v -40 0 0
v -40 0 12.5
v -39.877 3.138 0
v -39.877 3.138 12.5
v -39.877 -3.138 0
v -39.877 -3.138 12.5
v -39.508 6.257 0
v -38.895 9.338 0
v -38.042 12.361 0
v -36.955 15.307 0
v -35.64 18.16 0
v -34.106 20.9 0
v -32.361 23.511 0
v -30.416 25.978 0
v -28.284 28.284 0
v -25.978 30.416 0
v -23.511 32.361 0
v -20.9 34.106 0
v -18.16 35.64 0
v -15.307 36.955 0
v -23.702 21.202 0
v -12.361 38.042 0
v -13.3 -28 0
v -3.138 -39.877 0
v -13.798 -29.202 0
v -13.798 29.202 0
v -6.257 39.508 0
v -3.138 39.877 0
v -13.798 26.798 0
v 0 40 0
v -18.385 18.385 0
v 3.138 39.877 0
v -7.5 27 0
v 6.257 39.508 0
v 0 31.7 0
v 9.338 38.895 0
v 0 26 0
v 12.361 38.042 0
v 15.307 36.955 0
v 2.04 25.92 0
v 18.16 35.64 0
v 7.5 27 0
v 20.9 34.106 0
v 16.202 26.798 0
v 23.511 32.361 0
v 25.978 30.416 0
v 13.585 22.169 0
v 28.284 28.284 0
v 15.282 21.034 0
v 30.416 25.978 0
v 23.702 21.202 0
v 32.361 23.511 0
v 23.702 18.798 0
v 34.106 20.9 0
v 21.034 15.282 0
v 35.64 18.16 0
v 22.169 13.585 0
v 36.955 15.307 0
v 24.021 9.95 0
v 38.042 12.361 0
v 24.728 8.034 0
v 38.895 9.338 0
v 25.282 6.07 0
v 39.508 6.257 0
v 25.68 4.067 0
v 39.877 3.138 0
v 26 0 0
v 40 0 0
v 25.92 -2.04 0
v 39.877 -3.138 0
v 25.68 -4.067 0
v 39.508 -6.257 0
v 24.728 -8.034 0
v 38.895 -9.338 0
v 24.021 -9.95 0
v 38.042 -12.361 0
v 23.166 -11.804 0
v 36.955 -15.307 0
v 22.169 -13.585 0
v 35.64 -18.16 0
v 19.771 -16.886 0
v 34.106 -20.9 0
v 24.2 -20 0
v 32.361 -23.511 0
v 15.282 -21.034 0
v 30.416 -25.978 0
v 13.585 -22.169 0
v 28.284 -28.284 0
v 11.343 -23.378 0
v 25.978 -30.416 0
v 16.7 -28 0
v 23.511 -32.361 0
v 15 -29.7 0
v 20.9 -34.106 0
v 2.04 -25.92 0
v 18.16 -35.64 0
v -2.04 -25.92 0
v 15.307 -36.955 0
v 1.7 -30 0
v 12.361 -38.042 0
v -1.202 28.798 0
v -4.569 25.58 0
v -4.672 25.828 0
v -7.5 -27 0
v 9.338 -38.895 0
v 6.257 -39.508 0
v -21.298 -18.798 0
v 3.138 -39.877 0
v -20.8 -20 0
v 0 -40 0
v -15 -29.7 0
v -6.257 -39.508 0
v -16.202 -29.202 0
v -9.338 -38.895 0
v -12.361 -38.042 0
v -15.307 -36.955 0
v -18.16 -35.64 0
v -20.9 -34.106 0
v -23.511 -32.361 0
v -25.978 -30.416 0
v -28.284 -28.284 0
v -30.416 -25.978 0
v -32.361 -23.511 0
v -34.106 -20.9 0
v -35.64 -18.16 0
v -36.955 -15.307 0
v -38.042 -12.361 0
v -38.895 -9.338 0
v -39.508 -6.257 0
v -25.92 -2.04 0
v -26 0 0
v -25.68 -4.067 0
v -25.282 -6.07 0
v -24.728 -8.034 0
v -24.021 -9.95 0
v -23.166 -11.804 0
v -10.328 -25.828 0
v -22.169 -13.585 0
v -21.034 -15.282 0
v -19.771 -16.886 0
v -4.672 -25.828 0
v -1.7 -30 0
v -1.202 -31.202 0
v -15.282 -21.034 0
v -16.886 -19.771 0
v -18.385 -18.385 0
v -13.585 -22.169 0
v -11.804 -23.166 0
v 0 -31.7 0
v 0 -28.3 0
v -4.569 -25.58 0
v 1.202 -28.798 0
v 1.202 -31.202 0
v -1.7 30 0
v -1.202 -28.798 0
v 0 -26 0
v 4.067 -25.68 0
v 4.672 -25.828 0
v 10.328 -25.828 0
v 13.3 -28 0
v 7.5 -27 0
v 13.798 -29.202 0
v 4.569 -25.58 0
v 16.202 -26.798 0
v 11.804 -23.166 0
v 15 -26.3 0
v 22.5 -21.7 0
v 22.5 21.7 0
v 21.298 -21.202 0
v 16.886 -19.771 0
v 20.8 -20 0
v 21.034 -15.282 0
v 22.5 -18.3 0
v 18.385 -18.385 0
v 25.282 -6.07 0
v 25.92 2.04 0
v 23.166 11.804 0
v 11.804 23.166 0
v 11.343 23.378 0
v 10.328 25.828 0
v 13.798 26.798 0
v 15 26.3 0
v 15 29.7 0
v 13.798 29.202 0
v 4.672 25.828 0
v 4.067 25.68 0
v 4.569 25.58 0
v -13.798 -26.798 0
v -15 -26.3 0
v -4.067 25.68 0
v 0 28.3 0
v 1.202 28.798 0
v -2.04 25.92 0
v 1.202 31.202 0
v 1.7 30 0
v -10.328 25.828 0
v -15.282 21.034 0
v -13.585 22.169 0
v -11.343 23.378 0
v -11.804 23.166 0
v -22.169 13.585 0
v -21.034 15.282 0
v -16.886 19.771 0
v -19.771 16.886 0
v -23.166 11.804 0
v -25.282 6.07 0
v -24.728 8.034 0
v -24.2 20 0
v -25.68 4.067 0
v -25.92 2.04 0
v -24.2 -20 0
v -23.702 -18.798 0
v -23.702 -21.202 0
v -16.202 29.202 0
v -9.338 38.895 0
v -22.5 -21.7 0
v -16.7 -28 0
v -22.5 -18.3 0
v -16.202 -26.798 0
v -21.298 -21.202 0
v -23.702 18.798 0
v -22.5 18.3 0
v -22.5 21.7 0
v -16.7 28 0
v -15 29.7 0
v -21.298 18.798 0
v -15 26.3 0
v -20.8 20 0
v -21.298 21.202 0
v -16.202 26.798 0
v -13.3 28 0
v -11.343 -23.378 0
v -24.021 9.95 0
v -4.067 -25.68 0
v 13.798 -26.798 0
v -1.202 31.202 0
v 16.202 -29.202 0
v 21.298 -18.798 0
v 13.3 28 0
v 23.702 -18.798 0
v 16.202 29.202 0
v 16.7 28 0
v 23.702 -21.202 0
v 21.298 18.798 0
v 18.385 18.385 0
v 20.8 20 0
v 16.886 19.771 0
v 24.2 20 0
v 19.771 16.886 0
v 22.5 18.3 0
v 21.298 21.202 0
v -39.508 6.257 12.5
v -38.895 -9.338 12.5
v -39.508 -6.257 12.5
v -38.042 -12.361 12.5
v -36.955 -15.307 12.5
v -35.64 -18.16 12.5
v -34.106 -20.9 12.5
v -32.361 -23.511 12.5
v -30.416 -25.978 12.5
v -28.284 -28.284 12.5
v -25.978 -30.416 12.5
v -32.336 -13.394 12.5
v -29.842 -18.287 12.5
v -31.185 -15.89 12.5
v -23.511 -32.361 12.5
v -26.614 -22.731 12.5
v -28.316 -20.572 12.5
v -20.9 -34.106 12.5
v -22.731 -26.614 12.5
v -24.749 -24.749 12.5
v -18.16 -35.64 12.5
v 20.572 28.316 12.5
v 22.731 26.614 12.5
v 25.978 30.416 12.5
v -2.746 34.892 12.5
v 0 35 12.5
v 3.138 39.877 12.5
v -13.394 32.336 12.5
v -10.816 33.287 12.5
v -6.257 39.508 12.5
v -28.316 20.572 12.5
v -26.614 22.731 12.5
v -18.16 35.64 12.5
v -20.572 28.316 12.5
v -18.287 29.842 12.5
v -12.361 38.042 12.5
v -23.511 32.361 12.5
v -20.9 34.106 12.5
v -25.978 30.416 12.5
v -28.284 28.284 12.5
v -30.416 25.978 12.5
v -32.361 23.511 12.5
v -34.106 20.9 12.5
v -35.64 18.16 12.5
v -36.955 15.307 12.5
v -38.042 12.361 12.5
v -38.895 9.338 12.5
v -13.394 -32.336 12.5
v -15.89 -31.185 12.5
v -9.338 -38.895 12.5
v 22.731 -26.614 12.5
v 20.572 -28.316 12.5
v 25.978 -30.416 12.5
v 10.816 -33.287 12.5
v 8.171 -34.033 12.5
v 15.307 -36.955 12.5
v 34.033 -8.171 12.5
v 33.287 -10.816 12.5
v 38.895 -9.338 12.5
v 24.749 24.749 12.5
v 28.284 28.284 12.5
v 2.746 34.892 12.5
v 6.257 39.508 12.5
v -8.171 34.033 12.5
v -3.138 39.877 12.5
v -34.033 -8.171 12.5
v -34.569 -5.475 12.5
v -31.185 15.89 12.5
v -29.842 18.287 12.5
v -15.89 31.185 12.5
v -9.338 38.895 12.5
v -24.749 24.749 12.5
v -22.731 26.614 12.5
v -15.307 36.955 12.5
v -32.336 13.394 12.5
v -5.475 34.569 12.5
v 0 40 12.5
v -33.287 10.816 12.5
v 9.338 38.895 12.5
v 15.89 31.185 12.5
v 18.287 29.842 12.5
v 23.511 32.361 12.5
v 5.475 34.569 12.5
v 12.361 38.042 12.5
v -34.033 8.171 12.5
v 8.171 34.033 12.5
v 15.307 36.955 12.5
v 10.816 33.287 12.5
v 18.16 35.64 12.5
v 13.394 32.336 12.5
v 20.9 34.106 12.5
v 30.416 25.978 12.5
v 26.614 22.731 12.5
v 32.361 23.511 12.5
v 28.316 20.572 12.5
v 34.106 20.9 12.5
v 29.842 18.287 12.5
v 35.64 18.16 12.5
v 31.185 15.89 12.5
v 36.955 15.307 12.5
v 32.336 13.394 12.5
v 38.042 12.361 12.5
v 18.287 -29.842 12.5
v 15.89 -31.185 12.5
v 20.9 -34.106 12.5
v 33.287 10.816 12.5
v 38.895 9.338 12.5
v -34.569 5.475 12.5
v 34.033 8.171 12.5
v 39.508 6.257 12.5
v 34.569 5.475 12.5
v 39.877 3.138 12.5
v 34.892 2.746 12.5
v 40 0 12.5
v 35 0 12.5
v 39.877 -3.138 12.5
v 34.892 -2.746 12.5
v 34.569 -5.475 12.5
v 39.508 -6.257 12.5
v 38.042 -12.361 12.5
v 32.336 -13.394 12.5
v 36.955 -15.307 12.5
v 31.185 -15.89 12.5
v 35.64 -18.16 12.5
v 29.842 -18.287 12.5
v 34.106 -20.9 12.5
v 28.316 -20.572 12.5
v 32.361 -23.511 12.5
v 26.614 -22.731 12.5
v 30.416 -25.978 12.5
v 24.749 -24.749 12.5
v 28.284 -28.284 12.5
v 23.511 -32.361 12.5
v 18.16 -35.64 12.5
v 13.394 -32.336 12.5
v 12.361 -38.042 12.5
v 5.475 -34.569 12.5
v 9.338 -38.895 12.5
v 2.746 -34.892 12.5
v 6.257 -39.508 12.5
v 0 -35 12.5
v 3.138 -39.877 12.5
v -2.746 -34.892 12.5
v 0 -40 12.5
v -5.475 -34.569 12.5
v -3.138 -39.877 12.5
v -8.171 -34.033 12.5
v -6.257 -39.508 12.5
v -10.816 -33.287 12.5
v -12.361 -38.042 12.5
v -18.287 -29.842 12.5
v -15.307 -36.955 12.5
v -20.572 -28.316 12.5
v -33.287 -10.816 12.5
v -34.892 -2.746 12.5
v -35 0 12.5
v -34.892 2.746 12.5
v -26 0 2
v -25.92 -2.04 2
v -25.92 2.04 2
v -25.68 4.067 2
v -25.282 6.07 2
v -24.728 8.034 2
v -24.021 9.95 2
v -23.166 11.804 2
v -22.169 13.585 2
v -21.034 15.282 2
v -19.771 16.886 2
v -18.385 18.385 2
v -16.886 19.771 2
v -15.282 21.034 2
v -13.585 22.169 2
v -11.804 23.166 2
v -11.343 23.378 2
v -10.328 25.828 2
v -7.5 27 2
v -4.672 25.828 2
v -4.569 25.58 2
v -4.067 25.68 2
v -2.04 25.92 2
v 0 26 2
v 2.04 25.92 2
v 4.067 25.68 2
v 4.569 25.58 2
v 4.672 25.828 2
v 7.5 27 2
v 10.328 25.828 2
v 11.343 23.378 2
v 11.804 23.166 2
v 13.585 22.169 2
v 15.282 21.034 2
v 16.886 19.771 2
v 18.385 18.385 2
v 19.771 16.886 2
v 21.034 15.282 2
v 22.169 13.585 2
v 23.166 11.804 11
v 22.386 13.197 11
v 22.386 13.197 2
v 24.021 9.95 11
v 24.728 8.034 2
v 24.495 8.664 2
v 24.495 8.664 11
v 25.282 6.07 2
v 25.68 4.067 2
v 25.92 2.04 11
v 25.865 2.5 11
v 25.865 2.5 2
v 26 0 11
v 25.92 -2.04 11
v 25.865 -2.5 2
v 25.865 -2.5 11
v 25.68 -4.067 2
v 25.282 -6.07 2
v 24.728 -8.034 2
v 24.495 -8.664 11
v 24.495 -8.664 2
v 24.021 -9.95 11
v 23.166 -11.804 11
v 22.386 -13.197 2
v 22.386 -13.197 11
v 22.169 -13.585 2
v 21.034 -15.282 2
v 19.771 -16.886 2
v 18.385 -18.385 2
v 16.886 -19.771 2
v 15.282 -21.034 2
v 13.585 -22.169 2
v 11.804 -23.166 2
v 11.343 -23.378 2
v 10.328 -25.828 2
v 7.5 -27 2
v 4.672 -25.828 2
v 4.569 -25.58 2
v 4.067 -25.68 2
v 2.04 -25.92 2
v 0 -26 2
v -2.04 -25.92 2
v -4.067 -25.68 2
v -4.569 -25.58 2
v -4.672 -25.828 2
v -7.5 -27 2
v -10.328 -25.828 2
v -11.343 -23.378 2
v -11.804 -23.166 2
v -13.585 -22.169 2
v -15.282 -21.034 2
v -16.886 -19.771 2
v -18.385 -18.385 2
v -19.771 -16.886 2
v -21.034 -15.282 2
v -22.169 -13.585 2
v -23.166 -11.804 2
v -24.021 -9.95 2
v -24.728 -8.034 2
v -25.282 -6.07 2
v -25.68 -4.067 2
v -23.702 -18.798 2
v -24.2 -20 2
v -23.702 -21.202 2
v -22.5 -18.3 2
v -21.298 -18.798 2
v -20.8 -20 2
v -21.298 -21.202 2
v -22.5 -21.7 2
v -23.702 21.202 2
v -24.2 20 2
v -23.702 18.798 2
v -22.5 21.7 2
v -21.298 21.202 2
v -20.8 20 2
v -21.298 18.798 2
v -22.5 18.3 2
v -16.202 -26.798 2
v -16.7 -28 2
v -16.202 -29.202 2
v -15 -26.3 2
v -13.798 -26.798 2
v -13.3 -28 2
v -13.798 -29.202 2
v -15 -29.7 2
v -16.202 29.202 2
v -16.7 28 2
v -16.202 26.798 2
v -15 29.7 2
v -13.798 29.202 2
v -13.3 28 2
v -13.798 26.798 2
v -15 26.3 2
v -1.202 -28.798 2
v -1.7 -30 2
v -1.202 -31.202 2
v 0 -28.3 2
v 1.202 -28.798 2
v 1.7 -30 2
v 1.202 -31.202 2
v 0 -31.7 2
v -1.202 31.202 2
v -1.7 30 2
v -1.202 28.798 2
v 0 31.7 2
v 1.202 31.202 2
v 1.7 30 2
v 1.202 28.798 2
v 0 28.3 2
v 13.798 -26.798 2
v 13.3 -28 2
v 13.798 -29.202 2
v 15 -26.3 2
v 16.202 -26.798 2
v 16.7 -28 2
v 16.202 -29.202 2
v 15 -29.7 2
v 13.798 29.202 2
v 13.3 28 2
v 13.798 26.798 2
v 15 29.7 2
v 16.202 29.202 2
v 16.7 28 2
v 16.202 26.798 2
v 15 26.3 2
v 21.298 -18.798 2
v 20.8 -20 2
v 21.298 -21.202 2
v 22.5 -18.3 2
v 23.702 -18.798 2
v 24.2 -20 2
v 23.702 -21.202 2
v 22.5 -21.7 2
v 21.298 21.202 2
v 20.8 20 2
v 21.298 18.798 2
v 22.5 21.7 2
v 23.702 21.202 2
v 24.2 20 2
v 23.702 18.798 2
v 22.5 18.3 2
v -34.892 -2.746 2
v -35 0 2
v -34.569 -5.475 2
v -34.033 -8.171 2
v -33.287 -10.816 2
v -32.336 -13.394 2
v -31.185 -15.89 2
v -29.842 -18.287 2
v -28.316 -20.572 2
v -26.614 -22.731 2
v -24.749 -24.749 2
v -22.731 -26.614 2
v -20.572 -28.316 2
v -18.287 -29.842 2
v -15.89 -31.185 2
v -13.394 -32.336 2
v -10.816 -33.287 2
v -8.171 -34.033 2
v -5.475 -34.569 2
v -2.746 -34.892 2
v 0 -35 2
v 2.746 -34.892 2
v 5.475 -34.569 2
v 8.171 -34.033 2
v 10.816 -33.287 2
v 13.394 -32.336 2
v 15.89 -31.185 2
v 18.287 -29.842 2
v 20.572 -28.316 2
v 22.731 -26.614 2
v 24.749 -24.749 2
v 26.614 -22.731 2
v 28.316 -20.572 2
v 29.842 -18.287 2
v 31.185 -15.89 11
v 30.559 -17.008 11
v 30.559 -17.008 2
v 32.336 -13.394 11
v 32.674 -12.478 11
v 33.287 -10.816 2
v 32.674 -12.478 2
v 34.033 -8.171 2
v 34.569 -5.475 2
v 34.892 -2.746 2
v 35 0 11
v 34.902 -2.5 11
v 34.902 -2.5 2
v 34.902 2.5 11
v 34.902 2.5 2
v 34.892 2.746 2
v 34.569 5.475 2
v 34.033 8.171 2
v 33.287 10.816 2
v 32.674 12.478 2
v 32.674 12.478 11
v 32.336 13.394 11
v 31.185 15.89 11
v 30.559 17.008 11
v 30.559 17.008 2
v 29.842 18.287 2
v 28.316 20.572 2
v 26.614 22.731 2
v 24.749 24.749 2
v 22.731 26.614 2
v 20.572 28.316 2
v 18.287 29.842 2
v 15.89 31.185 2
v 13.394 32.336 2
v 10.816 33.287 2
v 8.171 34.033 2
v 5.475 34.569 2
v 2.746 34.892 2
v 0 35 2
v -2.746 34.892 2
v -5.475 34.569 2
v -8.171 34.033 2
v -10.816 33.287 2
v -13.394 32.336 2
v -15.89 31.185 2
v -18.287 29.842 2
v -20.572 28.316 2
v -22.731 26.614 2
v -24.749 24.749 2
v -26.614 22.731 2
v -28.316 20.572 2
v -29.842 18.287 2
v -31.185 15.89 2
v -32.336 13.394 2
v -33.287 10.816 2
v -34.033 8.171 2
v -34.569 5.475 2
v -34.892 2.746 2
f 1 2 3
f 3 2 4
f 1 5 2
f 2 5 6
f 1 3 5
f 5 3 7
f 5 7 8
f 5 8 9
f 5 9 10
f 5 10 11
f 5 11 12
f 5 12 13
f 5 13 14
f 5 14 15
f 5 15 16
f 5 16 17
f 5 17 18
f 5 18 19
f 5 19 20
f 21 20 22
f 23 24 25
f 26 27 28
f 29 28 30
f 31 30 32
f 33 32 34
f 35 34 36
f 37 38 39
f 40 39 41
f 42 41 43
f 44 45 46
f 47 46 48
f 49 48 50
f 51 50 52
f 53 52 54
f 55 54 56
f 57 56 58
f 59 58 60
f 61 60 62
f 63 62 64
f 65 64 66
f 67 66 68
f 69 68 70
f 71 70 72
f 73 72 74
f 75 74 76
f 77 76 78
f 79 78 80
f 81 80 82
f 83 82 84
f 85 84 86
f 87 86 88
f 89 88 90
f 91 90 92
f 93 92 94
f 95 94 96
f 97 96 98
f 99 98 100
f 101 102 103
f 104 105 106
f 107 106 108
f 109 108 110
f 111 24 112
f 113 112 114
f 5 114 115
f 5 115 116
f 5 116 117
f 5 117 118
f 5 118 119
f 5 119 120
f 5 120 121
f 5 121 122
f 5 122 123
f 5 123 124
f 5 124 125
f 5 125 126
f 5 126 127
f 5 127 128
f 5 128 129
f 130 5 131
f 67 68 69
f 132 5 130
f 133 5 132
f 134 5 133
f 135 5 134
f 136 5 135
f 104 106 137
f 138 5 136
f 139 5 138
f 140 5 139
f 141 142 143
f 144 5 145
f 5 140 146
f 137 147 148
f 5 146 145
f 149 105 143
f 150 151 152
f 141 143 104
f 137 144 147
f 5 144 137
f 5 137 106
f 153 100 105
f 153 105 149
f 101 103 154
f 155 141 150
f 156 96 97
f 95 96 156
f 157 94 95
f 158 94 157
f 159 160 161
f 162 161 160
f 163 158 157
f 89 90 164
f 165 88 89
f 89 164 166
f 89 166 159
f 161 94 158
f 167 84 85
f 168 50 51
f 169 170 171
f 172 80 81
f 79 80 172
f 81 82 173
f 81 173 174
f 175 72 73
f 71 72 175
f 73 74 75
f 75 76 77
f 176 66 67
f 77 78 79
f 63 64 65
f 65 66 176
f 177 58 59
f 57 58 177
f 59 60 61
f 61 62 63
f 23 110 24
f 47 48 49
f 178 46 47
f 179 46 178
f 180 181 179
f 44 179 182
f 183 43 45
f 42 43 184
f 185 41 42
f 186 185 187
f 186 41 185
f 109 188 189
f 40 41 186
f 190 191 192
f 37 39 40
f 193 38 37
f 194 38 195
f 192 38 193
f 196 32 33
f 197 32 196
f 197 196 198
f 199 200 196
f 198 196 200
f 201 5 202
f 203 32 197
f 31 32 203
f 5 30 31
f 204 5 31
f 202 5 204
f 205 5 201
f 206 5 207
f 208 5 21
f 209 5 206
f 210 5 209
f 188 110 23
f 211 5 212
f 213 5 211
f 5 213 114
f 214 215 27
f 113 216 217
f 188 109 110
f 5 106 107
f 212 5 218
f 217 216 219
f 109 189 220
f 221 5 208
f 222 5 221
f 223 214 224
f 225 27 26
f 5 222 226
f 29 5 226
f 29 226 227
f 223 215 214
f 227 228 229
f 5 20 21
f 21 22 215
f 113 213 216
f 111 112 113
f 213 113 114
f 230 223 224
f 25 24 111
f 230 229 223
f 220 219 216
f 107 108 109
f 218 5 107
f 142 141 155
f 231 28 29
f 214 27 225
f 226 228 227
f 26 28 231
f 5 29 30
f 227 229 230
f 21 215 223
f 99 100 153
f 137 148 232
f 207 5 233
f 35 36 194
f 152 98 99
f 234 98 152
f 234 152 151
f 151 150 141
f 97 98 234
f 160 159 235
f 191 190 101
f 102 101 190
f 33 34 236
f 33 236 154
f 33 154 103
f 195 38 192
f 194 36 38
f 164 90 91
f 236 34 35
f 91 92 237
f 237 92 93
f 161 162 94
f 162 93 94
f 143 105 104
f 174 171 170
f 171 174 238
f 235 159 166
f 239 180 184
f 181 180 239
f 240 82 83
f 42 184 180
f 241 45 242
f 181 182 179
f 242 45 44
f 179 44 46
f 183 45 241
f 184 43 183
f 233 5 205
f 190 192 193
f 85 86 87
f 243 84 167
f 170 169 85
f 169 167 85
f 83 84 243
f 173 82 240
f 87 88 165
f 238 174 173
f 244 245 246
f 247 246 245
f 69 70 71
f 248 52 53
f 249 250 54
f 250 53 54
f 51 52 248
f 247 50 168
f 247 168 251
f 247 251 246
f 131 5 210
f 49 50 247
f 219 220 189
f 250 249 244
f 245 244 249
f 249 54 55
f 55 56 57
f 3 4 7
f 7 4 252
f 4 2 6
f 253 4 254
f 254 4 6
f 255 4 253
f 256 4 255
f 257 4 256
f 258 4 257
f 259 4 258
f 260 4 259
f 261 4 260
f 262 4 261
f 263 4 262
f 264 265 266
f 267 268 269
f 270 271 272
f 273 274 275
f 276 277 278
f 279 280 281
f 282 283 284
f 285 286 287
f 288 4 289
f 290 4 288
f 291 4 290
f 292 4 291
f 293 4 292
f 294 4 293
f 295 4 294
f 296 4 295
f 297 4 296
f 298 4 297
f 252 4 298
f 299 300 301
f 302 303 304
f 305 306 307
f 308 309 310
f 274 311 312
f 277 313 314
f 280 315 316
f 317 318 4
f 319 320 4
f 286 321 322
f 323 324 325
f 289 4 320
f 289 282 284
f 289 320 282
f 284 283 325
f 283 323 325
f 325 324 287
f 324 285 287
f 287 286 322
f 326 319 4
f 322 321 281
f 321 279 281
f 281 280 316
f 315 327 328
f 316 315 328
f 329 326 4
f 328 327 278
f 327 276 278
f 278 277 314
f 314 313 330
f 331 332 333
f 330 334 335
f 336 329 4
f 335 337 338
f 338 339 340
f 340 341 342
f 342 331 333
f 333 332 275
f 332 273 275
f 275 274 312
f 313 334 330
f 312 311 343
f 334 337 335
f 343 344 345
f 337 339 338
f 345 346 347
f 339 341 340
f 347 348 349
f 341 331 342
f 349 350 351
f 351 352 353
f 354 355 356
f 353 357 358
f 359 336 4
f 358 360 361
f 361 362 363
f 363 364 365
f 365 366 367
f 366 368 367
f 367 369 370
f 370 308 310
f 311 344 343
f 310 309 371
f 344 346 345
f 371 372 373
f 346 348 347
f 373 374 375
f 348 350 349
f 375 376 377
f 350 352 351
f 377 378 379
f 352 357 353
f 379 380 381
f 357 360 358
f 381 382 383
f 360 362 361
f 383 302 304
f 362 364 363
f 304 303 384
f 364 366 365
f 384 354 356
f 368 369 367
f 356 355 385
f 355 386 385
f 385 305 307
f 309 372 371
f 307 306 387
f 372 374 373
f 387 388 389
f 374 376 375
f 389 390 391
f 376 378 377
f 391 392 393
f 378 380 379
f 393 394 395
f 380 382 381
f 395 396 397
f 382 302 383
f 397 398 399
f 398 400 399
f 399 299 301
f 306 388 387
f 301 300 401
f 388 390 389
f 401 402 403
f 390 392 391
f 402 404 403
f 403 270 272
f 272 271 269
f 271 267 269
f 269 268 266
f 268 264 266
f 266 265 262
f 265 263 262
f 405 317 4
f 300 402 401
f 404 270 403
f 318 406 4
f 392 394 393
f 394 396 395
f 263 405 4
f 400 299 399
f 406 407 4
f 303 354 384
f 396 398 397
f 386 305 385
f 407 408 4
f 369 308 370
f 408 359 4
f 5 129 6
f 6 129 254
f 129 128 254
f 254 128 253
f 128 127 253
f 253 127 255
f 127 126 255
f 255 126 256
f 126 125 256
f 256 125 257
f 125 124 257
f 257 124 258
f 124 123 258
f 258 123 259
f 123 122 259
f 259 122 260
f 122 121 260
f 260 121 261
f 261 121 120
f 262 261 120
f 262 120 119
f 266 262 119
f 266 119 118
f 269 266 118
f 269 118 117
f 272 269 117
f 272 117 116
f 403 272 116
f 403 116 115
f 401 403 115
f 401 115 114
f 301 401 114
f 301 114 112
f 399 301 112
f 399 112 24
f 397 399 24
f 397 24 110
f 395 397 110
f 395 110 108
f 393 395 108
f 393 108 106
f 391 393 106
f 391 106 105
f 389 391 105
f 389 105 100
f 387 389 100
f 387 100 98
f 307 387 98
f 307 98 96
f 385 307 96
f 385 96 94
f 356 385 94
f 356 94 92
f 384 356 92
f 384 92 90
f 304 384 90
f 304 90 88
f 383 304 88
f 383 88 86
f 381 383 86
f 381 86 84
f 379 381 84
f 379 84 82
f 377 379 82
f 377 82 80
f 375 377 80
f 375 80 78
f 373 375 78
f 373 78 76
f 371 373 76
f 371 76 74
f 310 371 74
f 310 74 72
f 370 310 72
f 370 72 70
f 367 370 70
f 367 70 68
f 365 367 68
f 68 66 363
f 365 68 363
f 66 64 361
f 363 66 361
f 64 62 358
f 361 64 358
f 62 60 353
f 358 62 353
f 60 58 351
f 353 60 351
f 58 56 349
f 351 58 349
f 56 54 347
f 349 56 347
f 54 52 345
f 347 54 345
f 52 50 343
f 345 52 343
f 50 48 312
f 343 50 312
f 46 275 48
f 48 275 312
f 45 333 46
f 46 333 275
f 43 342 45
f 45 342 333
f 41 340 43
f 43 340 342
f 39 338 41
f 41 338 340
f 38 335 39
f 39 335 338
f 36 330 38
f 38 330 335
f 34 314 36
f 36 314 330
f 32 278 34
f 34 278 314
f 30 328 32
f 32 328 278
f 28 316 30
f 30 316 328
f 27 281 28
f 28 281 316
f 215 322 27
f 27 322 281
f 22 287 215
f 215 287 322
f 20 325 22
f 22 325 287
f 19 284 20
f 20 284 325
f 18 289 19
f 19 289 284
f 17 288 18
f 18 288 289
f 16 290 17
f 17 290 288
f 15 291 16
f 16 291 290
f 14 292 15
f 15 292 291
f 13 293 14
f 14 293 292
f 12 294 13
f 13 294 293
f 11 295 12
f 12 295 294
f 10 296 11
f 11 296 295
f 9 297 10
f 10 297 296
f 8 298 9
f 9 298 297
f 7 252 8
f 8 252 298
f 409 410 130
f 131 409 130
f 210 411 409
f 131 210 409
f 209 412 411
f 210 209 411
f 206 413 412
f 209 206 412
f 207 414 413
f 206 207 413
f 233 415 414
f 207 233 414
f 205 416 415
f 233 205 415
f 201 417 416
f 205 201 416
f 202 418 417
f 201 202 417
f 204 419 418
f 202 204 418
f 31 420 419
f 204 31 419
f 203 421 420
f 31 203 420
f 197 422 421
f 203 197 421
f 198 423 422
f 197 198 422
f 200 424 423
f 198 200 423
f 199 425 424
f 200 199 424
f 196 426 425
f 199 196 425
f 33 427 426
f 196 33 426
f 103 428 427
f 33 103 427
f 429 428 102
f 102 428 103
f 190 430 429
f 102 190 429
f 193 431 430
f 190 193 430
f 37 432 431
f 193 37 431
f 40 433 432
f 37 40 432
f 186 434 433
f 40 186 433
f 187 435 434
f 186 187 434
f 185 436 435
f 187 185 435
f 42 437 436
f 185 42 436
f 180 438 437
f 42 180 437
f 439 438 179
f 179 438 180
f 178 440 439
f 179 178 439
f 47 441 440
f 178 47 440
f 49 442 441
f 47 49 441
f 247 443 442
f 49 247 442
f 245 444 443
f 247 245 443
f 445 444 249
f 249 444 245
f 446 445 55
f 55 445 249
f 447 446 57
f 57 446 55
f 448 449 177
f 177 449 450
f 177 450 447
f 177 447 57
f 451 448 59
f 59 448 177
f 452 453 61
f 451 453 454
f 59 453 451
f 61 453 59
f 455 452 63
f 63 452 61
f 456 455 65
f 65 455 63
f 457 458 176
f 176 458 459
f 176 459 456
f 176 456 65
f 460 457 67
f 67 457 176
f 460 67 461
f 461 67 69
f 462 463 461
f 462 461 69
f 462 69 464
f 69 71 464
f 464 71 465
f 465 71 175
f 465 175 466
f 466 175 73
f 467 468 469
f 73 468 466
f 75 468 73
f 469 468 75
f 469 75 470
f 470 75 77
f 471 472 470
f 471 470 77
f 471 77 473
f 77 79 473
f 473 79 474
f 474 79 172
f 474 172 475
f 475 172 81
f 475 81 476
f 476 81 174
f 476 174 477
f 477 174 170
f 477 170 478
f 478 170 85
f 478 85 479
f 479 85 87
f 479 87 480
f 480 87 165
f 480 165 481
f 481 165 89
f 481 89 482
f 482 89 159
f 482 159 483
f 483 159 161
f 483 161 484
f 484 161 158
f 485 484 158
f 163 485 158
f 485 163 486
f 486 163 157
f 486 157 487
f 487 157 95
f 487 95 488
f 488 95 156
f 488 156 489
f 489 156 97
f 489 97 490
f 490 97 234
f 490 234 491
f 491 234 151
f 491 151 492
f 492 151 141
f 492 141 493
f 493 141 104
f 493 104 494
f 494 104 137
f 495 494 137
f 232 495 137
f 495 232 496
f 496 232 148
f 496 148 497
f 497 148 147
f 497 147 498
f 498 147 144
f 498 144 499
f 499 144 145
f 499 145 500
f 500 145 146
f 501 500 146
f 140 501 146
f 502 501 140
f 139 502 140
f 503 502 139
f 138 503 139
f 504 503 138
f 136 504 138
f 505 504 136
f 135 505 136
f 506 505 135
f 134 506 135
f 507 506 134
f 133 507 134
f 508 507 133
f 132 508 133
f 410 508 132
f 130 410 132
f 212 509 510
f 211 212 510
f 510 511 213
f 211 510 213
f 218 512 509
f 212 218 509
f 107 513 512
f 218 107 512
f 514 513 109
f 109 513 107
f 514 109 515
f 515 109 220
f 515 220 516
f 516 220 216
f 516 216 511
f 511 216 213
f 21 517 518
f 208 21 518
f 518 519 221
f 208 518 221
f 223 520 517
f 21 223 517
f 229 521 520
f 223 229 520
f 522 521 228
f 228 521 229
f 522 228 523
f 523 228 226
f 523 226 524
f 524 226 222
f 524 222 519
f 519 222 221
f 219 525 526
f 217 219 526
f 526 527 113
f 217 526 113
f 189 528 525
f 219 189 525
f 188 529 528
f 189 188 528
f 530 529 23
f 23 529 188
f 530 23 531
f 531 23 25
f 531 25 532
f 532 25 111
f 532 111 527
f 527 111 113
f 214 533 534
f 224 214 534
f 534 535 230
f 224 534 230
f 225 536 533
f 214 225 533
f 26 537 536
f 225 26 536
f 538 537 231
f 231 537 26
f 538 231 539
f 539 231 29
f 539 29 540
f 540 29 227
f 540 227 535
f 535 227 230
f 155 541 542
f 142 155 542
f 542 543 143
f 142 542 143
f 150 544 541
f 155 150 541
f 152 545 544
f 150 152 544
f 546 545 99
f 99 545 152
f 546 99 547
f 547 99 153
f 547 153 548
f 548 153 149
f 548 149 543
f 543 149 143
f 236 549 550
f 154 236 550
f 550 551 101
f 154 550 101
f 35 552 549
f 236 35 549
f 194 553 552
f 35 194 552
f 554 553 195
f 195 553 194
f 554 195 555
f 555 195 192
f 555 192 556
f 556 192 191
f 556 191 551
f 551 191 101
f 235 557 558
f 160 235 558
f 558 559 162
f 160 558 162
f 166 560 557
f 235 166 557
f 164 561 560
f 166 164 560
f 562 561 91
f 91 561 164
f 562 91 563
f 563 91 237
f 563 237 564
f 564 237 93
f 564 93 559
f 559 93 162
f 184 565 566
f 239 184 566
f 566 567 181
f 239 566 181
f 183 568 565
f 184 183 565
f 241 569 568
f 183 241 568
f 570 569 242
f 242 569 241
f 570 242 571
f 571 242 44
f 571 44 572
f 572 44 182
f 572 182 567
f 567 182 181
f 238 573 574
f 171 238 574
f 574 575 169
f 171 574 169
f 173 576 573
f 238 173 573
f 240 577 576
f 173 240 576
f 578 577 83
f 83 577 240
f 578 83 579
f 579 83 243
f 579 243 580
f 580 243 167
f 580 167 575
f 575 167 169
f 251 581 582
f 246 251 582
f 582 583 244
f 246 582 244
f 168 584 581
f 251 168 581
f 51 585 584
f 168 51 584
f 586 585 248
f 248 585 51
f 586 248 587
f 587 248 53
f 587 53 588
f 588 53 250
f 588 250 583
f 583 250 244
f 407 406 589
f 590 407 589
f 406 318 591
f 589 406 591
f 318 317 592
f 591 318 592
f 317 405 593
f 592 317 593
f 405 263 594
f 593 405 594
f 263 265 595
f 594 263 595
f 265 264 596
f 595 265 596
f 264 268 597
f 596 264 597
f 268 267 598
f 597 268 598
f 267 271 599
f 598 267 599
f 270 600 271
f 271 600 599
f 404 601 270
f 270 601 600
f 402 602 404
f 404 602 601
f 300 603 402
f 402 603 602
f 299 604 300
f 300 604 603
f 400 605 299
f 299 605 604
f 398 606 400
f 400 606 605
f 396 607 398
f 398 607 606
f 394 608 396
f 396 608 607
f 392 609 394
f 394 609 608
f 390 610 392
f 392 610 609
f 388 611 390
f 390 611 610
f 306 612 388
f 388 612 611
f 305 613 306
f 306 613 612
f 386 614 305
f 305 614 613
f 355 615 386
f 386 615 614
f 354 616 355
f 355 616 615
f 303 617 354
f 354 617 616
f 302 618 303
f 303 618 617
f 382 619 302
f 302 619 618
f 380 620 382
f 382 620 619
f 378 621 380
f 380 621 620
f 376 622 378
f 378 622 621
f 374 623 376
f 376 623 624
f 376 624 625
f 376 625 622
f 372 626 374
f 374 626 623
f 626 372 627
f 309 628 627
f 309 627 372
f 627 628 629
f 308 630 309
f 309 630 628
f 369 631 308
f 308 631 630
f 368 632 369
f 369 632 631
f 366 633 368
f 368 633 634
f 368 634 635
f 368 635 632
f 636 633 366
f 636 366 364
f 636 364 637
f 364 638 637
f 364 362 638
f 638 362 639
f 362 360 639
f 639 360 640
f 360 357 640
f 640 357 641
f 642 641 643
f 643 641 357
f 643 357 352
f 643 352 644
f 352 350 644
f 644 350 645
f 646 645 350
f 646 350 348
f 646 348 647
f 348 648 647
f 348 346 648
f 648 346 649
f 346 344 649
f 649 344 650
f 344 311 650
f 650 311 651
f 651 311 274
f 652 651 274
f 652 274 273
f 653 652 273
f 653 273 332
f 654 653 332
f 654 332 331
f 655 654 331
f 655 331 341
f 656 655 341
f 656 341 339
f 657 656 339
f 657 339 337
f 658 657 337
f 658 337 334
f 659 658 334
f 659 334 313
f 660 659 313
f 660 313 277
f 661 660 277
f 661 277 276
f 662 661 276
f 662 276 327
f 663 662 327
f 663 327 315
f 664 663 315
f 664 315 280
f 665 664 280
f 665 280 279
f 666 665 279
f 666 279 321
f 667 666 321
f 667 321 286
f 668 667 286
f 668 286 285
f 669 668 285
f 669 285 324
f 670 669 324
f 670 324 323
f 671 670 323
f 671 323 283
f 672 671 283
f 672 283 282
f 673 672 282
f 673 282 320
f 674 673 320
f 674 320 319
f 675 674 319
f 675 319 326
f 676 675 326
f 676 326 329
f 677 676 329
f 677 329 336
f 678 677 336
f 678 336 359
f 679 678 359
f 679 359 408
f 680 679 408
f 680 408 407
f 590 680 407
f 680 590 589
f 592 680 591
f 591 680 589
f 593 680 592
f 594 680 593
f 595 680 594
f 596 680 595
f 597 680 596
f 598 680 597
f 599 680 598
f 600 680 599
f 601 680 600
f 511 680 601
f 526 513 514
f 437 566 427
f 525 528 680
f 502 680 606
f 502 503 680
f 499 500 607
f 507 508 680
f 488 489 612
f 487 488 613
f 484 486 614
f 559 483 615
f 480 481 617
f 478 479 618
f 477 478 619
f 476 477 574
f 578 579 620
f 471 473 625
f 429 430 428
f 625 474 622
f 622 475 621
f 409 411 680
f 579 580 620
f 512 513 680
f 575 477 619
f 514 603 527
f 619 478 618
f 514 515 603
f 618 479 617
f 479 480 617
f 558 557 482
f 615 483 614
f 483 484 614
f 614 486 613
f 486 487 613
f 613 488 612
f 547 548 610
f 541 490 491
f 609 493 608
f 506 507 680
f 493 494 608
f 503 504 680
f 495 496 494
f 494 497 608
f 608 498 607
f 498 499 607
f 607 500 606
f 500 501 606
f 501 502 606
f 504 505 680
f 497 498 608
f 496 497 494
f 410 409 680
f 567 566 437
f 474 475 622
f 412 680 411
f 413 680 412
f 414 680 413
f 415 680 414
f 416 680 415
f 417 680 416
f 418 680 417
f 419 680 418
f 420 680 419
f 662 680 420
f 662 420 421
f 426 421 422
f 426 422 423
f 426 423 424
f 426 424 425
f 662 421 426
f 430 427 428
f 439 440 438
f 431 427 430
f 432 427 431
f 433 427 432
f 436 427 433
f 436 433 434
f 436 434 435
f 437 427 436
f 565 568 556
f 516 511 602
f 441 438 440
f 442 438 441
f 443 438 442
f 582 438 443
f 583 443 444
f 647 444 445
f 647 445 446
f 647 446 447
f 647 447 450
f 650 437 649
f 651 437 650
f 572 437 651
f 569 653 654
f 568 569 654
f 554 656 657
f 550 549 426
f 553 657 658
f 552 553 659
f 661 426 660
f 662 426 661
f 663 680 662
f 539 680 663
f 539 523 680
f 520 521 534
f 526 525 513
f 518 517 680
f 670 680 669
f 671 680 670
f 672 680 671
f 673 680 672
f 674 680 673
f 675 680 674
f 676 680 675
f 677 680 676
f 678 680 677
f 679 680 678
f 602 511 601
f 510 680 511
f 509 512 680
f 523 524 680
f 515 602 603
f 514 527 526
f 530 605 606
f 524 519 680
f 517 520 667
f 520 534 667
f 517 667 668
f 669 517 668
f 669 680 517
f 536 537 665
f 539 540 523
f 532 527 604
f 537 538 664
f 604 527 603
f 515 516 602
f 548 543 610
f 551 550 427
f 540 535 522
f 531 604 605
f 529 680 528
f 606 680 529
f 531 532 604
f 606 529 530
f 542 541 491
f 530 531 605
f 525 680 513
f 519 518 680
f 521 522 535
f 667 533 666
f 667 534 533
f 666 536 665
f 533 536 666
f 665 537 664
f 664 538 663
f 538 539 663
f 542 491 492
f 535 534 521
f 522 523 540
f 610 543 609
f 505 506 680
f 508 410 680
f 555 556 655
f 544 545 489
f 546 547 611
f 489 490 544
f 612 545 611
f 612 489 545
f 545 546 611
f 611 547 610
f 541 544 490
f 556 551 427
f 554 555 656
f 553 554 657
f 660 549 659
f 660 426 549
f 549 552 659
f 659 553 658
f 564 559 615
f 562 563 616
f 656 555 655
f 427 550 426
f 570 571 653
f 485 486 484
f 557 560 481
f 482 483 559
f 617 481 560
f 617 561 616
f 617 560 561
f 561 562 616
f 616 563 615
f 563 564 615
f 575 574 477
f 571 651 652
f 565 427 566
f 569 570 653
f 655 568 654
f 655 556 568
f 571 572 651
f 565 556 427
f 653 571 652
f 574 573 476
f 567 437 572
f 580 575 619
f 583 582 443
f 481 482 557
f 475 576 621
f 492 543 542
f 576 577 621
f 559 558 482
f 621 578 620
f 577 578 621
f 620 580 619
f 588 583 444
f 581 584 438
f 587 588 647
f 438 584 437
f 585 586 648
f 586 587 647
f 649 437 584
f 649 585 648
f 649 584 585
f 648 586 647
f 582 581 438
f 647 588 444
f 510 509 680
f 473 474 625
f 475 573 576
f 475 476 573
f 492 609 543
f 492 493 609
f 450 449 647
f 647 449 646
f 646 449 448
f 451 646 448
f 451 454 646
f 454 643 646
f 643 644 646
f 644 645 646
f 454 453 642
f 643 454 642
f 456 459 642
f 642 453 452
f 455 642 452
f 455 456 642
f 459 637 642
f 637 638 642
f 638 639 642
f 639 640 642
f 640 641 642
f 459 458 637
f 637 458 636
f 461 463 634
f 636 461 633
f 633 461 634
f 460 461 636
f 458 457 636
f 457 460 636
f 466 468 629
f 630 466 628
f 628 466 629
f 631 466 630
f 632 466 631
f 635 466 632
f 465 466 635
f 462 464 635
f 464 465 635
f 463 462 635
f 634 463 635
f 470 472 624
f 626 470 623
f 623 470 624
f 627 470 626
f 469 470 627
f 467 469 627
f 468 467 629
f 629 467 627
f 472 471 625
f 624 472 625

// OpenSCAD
// AIR HOCKEY ROBOT PROJECT (AHROBOT)
// 
// by Jose Julio

// X axis carriage base

diameter = 80;
rod_separation=45;
bearing_diameter=15.5;
bearing_length=26;


module border()
{
	difference()
	{
	cylinder (r=diameter/2, h=4.5,center=true,$fn=80);
	cylinder (r=diameter/2-4.5, h=6,center=true,$fn=80);
	}
}

module x_carriage_beltcut(){
 // Cut in the middle for belt
 translate([-5.5+1,16.5,8]) cube([8,25,15]);
 // Cut clearing space for the belt
 //translate([-38,5,8]) cube([40,13,15]);
 // Belt slit
 translate([-32,16,8]) cube([80,1.25,15]);
 // Smooth entrance
 translate([-30,16.5,15.3]) rotate([45,0,0]) cube([80,15,15]);
 // Smooth the block on the upper side
 //translate([-66,27,15]) rotate([30,0,0]) cube([80,15,15]);
 // Teeth cuts (GT2)
 for ( i = [0 : 32] ){
  translate([30-i*2,14.5,8]) cube([1.15,2,15]);
 }
}

module belt()
{
	difference()
	{
	translate ([9,0,8]) cube([12,38,16],center=true);
	translate([25,0,-2]) rotate([0,0,90]) x_carriage_beltcut();
	}
}

module x_carriage_base()
{	
	cylinder (r=diameter/2, h=2,center=true,$fn=80);
	translate([0,0,2]) border();

	// bearing bases
	translate([rod_separation/2,0,5]) cube([20,bearing_length,10],center=true);
	translate([-rod_separation/2,0,5]) cube([20,bearing_length,10],center=true);

	//belt();
}

module x_carriage_holes()
{
	// bearing holes
	translate([rod_separation/2,0,-2]) horizontal_bearing_holes();
	translate([-rod_separation/2,0,-2]) horizontal_bearing_holes();

	// holes for belt
	translate([7.5,23,0]) cylinder(r=1.65,h=20,center=true,$fn=8);
	translate([7.5,-23,0]) cylinder(r=1.65,h=20,center=true,$fn=8);
	translate([-7.5,23,0]) cylinder(r=1.65,h=20,center=true,$fn=8);
	translate([-7.5,-23,0]) cylinder(r=1.65,h=20,center=true,$fn=8);
	

	// M3 holes
	translate([0,-30,0]) cylinder(r=1.7,h=20,center=true,$fn=8);
	translate([15,-28,0]) cylinder(r=1.7,h=20,center=true,$fn=8);
	translate([-15,-28,0]) cylinder(r=1.7,h=20,center=true,$fn=8);
	translate([0,30,0]) cylinder(r=1.7,h=20,center=true,$fn=8);
	translate([15,28,0]) cylinder(r=1.7,h=20,center=true,$fn=8);
	translate([-15,28,0]) cylinder(r=1.7,h=20,center=true,$fn=8);

	translate([rod_separation/2,-20,0]) cylinder(r=1.7,h=20,center=true,$fn=8);
	translate([rod_separation/2,20,0]) cylinder(r=1.7,h=20,center=true,$fn=8);
	translate([-rod_separation/2,-20,0]) cylinder(r=1.7,h=20,center=true,$fn=8);
	translate([-rod_separation/2,20,0]) cylinder(r=1.7,h=20,center=true,$fn=8);
}


module border_pusher()
{
	difference()
	{
	cylinder (r=diameter/2, h=12.5,$fn=80);
	cylinder (r=diameter/2-5, h=15,$fn=80);
	}
}

module x_carriage_pusher_base()
{	
	cylinder (r=diameter/2, h=2,$fn=80);
	translate([0,0,0]) border_pusher();

	translate([30,0,5.5]) cube([10,5,11],center=true);
	rotate([0,0,25])translate([30,0,5.5]) cube([10,5,11],center=true);
	rotate([0,0,-25])translate([30,0,5.5]) cube([10,5,11],center=true);
	
}


module x_carriage_pusher_holes()
{
	cylinder (r=diameter/2-14, h=50,center=true,$fn=80);	

	// M3 holes
	translate([0,-30,0]) cylinder(r=1.7,h=20,center=true,$fn=8);
	translate([15,-28,0]) cylinder(r=1.7,h=20,center=true,$fn=8);
	translate([-15,-28,0]) cylinder(r=1.7,h=20,center=true,$fn=8);
	translate([0,30,0]) cylinder(r=1.7,h=20,center=true,$fn=8);
	translate([15,28,0]) cylinder(r=1.7,h=20,center=true,$fn=8);
	translate([-15,28,0]) cylinder(r=1.7,h=20,center=true,$fn=8);

	translate([rod_separation/2,-20,0]) cylinder(r=1.7,h=20,center=true,$fn=8);
	translate([rod_separation/2,20,0]) cylinder(r=1.7,h=20,center=true,$fn=8);
	translate([-rod_separation/2,-20,0]) cylinder(r=1.7,h=20,center=true,$fn=8);
	translate([-rod_separation/2,20,0]) cylinder(r=1.7,h=20,center=true,$fn=8);

	// holes for belt
	translate([7.5,23,0]) cylinder(r=4,h=20,center=true,$fn=8);
	translate([7.5,-23,0]) cylinder(r=4,h=20,center=true,$fn=8);
	translate([-7.5,23,0]) cylinder(r=4,h=20,center=true,$fn=8);
	translate([-7.5,-23,0]) cylinder(r=4,h=20,center=true,$fn=8);
}


/*
difference()
{
x_carriage_base();
x_carriage_holes();
}
*/

difference()
{
x_carriage_pusher_base();
x_carriage_pusher_holes();
}
